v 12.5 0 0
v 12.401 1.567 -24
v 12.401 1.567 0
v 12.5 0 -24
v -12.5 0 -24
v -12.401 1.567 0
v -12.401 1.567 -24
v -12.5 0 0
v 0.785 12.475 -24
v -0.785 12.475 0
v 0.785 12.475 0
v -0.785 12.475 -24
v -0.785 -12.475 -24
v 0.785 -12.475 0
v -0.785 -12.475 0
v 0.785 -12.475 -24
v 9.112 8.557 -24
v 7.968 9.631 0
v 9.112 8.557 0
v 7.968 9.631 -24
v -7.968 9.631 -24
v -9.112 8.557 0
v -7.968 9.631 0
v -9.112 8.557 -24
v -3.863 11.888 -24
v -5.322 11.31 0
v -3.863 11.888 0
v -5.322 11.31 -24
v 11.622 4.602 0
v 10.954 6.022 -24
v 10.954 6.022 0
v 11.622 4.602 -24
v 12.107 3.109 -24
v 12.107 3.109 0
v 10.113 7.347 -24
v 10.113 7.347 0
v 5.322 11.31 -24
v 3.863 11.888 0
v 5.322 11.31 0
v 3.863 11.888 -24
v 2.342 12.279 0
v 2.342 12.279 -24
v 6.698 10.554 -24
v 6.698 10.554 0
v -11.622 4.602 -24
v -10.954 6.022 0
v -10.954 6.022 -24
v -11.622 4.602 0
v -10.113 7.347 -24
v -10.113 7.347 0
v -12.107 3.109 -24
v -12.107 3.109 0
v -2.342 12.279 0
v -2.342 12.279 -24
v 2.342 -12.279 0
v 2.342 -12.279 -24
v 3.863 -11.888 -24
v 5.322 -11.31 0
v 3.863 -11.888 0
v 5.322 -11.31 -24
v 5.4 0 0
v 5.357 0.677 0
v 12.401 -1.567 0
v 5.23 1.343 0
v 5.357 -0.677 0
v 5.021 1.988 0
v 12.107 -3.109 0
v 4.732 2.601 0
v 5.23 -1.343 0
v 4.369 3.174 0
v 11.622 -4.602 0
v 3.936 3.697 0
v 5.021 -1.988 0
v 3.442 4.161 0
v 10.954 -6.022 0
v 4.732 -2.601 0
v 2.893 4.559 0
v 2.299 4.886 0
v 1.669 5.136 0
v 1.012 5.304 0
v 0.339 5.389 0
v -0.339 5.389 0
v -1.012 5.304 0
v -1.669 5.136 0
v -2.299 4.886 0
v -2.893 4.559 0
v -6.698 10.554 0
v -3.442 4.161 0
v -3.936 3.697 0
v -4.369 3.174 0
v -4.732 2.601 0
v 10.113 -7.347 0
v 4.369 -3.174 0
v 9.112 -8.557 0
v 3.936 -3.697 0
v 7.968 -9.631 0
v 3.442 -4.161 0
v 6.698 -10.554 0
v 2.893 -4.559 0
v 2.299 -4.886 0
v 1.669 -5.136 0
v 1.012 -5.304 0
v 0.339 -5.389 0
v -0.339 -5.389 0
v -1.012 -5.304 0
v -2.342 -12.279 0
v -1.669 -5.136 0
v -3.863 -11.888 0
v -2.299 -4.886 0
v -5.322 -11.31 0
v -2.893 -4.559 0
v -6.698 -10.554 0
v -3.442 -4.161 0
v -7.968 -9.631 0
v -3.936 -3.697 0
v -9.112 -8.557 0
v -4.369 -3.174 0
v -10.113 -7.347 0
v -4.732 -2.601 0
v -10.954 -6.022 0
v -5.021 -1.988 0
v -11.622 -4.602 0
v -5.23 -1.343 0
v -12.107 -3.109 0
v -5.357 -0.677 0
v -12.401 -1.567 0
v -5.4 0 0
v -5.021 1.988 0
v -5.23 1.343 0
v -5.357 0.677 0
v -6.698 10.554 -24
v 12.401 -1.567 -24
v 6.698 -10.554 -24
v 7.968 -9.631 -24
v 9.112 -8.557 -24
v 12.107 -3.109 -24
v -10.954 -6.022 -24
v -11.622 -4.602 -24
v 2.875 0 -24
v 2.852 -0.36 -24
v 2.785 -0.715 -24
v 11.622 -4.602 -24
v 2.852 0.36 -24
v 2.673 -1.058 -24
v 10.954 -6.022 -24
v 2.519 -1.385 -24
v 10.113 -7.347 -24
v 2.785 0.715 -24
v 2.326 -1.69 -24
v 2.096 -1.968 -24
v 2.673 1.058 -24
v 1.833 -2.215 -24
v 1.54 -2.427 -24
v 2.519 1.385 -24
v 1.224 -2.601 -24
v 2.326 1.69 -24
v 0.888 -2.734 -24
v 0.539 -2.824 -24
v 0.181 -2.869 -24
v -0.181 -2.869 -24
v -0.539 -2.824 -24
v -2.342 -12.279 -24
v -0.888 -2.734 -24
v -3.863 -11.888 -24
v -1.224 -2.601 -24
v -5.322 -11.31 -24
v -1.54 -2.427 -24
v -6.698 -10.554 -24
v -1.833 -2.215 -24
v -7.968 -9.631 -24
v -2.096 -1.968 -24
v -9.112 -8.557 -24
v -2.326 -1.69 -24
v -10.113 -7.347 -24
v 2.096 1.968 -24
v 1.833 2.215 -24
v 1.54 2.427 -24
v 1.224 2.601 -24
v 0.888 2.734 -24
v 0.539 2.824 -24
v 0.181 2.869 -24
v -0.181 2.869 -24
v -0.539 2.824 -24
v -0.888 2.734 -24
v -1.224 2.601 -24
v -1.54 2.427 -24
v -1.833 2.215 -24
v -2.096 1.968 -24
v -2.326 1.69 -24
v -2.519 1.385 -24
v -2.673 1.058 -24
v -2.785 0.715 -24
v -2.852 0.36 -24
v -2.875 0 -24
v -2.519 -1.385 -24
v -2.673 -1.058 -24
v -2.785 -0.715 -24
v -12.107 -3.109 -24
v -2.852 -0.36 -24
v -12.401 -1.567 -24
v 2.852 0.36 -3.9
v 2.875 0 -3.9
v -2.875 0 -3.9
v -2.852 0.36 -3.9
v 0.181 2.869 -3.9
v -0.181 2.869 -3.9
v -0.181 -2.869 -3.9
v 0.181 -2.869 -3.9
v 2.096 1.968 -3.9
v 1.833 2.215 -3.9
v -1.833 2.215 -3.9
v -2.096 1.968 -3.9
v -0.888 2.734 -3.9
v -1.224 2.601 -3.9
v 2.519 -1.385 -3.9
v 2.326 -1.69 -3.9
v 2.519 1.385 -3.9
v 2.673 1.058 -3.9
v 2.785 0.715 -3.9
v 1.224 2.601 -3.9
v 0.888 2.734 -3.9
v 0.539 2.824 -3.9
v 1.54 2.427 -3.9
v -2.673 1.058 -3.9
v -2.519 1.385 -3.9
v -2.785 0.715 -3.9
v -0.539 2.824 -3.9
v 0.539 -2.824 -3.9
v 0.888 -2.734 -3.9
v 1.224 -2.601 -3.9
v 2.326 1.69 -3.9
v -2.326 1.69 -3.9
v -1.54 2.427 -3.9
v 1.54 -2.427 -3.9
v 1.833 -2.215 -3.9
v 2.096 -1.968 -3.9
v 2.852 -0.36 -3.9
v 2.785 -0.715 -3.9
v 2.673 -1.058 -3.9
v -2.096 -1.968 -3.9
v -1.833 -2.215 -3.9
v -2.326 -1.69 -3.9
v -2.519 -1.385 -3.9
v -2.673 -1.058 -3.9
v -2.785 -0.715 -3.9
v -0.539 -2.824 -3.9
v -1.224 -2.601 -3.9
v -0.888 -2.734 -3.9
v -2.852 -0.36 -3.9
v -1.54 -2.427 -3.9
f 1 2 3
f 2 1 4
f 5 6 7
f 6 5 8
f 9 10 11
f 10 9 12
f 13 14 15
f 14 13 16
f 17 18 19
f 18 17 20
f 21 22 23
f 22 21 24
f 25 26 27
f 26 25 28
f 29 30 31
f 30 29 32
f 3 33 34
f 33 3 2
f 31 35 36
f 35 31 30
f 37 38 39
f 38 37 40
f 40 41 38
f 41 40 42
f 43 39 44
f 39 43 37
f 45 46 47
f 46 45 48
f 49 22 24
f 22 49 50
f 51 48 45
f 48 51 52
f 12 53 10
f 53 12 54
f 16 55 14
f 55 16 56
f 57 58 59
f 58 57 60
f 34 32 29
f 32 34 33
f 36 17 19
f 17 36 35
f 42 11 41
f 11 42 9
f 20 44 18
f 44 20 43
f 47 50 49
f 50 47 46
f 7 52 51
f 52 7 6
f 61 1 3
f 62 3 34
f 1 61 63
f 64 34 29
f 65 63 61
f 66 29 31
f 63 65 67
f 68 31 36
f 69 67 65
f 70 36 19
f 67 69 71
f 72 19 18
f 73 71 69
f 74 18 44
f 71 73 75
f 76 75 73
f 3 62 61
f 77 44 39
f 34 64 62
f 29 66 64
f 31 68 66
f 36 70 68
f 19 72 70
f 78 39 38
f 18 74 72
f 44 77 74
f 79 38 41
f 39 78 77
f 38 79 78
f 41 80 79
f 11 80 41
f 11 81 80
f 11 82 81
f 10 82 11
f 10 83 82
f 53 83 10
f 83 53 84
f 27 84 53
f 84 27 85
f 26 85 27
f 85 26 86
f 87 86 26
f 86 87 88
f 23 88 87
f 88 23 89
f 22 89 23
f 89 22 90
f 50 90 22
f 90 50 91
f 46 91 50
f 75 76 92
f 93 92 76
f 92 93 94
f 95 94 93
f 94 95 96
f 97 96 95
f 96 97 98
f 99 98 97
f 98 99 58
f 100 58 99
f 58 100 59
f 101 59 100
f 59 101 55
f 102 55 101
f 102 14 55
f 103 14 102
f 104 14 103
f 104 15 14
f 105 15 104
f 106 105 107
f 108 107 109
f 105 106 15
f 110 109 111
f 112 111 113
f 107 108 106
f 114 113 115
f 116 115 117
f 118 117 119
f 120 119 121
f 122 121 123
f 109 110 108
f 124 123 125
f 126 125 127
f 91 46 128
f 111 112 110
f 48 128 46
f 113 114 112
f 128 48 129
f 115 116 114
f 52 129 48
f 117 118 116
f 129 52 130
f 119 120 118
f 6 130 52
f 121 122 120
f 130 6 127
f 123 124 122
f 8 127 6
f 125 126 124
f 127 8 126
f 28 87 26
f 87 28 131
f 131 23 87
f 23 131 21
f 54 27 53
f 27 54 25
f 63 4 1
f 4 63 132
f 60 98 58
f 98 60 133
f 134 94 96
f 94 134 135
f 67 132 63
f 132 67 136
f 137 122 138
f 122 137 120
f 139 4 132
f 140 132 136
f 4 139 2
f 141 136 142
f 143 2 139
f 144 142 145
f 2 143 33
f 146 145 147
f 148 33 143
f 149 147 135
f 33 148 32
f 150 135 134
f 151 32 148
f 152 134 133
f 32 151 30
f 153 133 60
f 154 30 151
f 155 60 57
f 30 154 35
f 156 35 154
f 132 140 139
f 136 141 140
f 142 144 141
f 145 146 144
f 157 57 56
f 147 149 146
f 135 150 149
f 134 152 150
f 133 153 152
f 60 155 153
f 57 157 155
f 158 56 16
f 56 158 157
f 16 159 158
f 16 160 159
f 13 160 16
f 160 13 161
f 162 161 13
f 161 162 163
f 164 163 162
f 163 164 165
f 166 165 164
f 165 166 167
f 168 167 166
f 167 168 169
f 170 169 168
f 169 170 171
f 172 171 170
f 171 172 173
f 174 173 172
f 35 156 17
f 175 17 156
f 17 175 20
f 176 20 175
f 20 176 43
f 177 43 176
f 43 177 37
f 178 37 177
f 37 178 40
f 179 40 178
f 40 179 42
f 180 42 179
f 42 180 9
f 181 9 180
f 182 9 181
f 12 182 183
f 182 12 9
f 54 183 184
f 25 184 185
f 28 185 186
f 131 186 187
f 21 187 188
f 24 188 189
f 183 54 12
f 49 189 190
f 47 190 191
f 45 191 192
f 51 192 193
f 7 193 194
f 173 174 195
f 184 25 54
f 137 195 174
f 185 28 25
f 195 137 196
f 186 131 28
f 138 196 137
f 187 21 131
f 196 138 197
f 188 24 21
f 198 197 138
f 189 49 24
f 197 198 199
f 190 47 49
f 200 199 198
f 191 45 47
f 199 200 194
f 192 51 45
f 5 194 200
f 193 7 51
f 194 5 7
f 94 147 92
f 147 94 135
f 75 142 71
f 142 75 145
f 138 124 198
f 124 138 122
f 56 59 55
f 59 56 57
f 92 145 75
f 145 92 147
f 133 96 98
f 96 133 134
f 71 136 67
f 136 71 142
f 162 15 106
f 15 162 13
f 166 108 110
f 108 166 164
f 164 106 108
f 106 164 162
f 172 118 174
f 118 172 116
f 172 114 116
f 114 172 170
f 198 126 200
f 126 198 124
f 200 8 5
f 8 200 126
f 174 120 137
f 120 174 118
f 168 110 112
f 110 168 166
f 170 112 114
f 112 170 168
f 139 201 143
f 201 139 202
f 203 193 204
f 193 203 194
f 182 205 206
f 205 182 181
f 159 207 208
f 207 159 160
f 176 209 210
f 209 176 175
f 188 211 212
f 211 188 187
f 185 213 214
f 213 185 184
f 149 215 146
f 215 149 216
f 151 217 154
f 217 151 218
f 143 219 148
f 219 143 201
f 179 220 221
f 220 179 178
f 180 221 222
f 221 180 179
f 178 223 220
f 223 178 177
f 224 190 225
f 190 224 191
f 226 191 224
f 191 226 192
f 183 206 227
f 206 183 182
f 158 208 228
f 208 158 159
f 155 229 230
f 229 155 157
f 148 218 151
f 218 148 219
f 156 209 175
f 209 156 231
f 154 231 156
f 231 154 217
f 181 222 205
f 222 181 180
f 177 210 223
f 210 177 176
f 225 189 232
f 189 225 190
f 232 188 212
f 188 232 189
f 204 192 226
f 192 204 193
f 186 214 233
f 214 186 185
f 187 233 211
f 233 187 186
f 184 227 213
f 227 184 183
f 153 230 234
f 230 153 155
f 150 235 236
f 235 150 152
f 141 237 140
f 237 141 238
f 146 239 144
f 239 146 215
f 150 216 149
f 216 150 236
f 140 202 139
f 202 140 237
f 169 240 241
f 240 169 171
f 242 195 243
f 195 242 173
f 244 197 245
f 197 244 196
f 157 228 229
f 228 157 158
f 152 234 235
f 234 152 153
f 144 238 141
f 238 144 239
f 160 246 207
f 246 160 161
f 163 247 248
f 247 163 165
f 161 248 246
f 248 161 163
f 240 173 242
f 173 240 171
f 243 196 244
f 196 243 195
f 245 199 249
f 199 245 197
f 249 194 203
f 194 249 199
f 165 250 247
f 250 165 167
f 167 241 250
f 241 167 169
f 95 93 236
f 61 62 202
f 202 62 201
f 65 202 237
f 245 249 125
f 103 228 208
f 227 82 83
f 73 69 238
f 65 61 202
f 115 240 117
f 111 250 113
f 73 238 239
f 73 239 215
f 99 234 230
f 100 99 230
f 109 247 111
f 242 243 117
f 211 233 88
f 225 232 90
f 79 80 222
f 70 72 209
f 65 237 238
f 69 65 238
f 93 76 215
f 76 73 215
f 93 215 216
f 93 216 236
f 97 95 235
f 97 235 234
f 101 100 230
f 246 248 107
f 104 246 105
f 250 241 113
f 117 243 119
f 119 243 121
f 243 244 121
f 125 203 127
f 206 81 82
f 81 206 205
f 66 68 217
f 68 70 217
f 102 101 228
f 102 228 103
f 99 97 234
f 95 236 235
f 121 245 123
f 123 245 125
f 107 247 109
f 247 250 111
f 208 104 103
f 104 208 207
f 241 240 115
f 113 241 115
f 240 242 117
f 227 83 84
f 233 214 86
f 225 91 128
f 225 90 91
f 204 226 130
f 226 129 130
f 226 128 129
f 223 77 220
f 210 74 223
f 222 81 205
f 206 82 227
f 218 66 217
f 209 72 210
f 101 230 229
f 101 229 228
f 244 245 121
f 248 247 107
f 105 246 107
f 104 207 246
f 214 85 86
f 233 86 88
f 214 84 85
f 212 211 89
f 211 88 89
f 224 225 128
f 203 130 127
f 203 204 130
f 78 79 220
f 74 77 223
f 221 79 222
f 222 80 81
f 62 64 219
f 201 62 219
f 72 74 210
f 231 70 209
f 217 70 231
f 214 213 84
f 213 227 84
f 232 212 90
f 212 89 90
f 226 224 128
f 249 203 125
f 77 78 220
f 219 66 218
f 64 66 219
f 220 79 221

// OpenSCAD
$fn = 50;

difference() {
	union() {
		translate(v = [0, 0, -24.0]) {
			cylinder(h = 24, r = 12.5);
		}
		#translate(v = [0, 0, -27.0]) {
			cylinder(h = 27, r = 2.875);
		}
	}
	union() {
		translate(v = [0, 0, 0]) {
			rotate(a = [0, 0, 0]) {
				difference() {
					union() {
						translate(v = [0, 0, -27.0]) {
							cylinder(h = 27, r = 2.6);
						}
						translate(v = [0, 0, -3.9]) {
							cylinder(h = 3.9, r1 = 2.875, r2 = 5.4);
						}
						translate(v = [0, 0, -27.0]) {
							cylinder(h = 27, r = 2.875);
						}
						translate(v = [0, 0, -27.0]) {
							cylinder(h = 27, r = 2.6);
						}
					}
					union();
				}
			}
		}
	}
}
